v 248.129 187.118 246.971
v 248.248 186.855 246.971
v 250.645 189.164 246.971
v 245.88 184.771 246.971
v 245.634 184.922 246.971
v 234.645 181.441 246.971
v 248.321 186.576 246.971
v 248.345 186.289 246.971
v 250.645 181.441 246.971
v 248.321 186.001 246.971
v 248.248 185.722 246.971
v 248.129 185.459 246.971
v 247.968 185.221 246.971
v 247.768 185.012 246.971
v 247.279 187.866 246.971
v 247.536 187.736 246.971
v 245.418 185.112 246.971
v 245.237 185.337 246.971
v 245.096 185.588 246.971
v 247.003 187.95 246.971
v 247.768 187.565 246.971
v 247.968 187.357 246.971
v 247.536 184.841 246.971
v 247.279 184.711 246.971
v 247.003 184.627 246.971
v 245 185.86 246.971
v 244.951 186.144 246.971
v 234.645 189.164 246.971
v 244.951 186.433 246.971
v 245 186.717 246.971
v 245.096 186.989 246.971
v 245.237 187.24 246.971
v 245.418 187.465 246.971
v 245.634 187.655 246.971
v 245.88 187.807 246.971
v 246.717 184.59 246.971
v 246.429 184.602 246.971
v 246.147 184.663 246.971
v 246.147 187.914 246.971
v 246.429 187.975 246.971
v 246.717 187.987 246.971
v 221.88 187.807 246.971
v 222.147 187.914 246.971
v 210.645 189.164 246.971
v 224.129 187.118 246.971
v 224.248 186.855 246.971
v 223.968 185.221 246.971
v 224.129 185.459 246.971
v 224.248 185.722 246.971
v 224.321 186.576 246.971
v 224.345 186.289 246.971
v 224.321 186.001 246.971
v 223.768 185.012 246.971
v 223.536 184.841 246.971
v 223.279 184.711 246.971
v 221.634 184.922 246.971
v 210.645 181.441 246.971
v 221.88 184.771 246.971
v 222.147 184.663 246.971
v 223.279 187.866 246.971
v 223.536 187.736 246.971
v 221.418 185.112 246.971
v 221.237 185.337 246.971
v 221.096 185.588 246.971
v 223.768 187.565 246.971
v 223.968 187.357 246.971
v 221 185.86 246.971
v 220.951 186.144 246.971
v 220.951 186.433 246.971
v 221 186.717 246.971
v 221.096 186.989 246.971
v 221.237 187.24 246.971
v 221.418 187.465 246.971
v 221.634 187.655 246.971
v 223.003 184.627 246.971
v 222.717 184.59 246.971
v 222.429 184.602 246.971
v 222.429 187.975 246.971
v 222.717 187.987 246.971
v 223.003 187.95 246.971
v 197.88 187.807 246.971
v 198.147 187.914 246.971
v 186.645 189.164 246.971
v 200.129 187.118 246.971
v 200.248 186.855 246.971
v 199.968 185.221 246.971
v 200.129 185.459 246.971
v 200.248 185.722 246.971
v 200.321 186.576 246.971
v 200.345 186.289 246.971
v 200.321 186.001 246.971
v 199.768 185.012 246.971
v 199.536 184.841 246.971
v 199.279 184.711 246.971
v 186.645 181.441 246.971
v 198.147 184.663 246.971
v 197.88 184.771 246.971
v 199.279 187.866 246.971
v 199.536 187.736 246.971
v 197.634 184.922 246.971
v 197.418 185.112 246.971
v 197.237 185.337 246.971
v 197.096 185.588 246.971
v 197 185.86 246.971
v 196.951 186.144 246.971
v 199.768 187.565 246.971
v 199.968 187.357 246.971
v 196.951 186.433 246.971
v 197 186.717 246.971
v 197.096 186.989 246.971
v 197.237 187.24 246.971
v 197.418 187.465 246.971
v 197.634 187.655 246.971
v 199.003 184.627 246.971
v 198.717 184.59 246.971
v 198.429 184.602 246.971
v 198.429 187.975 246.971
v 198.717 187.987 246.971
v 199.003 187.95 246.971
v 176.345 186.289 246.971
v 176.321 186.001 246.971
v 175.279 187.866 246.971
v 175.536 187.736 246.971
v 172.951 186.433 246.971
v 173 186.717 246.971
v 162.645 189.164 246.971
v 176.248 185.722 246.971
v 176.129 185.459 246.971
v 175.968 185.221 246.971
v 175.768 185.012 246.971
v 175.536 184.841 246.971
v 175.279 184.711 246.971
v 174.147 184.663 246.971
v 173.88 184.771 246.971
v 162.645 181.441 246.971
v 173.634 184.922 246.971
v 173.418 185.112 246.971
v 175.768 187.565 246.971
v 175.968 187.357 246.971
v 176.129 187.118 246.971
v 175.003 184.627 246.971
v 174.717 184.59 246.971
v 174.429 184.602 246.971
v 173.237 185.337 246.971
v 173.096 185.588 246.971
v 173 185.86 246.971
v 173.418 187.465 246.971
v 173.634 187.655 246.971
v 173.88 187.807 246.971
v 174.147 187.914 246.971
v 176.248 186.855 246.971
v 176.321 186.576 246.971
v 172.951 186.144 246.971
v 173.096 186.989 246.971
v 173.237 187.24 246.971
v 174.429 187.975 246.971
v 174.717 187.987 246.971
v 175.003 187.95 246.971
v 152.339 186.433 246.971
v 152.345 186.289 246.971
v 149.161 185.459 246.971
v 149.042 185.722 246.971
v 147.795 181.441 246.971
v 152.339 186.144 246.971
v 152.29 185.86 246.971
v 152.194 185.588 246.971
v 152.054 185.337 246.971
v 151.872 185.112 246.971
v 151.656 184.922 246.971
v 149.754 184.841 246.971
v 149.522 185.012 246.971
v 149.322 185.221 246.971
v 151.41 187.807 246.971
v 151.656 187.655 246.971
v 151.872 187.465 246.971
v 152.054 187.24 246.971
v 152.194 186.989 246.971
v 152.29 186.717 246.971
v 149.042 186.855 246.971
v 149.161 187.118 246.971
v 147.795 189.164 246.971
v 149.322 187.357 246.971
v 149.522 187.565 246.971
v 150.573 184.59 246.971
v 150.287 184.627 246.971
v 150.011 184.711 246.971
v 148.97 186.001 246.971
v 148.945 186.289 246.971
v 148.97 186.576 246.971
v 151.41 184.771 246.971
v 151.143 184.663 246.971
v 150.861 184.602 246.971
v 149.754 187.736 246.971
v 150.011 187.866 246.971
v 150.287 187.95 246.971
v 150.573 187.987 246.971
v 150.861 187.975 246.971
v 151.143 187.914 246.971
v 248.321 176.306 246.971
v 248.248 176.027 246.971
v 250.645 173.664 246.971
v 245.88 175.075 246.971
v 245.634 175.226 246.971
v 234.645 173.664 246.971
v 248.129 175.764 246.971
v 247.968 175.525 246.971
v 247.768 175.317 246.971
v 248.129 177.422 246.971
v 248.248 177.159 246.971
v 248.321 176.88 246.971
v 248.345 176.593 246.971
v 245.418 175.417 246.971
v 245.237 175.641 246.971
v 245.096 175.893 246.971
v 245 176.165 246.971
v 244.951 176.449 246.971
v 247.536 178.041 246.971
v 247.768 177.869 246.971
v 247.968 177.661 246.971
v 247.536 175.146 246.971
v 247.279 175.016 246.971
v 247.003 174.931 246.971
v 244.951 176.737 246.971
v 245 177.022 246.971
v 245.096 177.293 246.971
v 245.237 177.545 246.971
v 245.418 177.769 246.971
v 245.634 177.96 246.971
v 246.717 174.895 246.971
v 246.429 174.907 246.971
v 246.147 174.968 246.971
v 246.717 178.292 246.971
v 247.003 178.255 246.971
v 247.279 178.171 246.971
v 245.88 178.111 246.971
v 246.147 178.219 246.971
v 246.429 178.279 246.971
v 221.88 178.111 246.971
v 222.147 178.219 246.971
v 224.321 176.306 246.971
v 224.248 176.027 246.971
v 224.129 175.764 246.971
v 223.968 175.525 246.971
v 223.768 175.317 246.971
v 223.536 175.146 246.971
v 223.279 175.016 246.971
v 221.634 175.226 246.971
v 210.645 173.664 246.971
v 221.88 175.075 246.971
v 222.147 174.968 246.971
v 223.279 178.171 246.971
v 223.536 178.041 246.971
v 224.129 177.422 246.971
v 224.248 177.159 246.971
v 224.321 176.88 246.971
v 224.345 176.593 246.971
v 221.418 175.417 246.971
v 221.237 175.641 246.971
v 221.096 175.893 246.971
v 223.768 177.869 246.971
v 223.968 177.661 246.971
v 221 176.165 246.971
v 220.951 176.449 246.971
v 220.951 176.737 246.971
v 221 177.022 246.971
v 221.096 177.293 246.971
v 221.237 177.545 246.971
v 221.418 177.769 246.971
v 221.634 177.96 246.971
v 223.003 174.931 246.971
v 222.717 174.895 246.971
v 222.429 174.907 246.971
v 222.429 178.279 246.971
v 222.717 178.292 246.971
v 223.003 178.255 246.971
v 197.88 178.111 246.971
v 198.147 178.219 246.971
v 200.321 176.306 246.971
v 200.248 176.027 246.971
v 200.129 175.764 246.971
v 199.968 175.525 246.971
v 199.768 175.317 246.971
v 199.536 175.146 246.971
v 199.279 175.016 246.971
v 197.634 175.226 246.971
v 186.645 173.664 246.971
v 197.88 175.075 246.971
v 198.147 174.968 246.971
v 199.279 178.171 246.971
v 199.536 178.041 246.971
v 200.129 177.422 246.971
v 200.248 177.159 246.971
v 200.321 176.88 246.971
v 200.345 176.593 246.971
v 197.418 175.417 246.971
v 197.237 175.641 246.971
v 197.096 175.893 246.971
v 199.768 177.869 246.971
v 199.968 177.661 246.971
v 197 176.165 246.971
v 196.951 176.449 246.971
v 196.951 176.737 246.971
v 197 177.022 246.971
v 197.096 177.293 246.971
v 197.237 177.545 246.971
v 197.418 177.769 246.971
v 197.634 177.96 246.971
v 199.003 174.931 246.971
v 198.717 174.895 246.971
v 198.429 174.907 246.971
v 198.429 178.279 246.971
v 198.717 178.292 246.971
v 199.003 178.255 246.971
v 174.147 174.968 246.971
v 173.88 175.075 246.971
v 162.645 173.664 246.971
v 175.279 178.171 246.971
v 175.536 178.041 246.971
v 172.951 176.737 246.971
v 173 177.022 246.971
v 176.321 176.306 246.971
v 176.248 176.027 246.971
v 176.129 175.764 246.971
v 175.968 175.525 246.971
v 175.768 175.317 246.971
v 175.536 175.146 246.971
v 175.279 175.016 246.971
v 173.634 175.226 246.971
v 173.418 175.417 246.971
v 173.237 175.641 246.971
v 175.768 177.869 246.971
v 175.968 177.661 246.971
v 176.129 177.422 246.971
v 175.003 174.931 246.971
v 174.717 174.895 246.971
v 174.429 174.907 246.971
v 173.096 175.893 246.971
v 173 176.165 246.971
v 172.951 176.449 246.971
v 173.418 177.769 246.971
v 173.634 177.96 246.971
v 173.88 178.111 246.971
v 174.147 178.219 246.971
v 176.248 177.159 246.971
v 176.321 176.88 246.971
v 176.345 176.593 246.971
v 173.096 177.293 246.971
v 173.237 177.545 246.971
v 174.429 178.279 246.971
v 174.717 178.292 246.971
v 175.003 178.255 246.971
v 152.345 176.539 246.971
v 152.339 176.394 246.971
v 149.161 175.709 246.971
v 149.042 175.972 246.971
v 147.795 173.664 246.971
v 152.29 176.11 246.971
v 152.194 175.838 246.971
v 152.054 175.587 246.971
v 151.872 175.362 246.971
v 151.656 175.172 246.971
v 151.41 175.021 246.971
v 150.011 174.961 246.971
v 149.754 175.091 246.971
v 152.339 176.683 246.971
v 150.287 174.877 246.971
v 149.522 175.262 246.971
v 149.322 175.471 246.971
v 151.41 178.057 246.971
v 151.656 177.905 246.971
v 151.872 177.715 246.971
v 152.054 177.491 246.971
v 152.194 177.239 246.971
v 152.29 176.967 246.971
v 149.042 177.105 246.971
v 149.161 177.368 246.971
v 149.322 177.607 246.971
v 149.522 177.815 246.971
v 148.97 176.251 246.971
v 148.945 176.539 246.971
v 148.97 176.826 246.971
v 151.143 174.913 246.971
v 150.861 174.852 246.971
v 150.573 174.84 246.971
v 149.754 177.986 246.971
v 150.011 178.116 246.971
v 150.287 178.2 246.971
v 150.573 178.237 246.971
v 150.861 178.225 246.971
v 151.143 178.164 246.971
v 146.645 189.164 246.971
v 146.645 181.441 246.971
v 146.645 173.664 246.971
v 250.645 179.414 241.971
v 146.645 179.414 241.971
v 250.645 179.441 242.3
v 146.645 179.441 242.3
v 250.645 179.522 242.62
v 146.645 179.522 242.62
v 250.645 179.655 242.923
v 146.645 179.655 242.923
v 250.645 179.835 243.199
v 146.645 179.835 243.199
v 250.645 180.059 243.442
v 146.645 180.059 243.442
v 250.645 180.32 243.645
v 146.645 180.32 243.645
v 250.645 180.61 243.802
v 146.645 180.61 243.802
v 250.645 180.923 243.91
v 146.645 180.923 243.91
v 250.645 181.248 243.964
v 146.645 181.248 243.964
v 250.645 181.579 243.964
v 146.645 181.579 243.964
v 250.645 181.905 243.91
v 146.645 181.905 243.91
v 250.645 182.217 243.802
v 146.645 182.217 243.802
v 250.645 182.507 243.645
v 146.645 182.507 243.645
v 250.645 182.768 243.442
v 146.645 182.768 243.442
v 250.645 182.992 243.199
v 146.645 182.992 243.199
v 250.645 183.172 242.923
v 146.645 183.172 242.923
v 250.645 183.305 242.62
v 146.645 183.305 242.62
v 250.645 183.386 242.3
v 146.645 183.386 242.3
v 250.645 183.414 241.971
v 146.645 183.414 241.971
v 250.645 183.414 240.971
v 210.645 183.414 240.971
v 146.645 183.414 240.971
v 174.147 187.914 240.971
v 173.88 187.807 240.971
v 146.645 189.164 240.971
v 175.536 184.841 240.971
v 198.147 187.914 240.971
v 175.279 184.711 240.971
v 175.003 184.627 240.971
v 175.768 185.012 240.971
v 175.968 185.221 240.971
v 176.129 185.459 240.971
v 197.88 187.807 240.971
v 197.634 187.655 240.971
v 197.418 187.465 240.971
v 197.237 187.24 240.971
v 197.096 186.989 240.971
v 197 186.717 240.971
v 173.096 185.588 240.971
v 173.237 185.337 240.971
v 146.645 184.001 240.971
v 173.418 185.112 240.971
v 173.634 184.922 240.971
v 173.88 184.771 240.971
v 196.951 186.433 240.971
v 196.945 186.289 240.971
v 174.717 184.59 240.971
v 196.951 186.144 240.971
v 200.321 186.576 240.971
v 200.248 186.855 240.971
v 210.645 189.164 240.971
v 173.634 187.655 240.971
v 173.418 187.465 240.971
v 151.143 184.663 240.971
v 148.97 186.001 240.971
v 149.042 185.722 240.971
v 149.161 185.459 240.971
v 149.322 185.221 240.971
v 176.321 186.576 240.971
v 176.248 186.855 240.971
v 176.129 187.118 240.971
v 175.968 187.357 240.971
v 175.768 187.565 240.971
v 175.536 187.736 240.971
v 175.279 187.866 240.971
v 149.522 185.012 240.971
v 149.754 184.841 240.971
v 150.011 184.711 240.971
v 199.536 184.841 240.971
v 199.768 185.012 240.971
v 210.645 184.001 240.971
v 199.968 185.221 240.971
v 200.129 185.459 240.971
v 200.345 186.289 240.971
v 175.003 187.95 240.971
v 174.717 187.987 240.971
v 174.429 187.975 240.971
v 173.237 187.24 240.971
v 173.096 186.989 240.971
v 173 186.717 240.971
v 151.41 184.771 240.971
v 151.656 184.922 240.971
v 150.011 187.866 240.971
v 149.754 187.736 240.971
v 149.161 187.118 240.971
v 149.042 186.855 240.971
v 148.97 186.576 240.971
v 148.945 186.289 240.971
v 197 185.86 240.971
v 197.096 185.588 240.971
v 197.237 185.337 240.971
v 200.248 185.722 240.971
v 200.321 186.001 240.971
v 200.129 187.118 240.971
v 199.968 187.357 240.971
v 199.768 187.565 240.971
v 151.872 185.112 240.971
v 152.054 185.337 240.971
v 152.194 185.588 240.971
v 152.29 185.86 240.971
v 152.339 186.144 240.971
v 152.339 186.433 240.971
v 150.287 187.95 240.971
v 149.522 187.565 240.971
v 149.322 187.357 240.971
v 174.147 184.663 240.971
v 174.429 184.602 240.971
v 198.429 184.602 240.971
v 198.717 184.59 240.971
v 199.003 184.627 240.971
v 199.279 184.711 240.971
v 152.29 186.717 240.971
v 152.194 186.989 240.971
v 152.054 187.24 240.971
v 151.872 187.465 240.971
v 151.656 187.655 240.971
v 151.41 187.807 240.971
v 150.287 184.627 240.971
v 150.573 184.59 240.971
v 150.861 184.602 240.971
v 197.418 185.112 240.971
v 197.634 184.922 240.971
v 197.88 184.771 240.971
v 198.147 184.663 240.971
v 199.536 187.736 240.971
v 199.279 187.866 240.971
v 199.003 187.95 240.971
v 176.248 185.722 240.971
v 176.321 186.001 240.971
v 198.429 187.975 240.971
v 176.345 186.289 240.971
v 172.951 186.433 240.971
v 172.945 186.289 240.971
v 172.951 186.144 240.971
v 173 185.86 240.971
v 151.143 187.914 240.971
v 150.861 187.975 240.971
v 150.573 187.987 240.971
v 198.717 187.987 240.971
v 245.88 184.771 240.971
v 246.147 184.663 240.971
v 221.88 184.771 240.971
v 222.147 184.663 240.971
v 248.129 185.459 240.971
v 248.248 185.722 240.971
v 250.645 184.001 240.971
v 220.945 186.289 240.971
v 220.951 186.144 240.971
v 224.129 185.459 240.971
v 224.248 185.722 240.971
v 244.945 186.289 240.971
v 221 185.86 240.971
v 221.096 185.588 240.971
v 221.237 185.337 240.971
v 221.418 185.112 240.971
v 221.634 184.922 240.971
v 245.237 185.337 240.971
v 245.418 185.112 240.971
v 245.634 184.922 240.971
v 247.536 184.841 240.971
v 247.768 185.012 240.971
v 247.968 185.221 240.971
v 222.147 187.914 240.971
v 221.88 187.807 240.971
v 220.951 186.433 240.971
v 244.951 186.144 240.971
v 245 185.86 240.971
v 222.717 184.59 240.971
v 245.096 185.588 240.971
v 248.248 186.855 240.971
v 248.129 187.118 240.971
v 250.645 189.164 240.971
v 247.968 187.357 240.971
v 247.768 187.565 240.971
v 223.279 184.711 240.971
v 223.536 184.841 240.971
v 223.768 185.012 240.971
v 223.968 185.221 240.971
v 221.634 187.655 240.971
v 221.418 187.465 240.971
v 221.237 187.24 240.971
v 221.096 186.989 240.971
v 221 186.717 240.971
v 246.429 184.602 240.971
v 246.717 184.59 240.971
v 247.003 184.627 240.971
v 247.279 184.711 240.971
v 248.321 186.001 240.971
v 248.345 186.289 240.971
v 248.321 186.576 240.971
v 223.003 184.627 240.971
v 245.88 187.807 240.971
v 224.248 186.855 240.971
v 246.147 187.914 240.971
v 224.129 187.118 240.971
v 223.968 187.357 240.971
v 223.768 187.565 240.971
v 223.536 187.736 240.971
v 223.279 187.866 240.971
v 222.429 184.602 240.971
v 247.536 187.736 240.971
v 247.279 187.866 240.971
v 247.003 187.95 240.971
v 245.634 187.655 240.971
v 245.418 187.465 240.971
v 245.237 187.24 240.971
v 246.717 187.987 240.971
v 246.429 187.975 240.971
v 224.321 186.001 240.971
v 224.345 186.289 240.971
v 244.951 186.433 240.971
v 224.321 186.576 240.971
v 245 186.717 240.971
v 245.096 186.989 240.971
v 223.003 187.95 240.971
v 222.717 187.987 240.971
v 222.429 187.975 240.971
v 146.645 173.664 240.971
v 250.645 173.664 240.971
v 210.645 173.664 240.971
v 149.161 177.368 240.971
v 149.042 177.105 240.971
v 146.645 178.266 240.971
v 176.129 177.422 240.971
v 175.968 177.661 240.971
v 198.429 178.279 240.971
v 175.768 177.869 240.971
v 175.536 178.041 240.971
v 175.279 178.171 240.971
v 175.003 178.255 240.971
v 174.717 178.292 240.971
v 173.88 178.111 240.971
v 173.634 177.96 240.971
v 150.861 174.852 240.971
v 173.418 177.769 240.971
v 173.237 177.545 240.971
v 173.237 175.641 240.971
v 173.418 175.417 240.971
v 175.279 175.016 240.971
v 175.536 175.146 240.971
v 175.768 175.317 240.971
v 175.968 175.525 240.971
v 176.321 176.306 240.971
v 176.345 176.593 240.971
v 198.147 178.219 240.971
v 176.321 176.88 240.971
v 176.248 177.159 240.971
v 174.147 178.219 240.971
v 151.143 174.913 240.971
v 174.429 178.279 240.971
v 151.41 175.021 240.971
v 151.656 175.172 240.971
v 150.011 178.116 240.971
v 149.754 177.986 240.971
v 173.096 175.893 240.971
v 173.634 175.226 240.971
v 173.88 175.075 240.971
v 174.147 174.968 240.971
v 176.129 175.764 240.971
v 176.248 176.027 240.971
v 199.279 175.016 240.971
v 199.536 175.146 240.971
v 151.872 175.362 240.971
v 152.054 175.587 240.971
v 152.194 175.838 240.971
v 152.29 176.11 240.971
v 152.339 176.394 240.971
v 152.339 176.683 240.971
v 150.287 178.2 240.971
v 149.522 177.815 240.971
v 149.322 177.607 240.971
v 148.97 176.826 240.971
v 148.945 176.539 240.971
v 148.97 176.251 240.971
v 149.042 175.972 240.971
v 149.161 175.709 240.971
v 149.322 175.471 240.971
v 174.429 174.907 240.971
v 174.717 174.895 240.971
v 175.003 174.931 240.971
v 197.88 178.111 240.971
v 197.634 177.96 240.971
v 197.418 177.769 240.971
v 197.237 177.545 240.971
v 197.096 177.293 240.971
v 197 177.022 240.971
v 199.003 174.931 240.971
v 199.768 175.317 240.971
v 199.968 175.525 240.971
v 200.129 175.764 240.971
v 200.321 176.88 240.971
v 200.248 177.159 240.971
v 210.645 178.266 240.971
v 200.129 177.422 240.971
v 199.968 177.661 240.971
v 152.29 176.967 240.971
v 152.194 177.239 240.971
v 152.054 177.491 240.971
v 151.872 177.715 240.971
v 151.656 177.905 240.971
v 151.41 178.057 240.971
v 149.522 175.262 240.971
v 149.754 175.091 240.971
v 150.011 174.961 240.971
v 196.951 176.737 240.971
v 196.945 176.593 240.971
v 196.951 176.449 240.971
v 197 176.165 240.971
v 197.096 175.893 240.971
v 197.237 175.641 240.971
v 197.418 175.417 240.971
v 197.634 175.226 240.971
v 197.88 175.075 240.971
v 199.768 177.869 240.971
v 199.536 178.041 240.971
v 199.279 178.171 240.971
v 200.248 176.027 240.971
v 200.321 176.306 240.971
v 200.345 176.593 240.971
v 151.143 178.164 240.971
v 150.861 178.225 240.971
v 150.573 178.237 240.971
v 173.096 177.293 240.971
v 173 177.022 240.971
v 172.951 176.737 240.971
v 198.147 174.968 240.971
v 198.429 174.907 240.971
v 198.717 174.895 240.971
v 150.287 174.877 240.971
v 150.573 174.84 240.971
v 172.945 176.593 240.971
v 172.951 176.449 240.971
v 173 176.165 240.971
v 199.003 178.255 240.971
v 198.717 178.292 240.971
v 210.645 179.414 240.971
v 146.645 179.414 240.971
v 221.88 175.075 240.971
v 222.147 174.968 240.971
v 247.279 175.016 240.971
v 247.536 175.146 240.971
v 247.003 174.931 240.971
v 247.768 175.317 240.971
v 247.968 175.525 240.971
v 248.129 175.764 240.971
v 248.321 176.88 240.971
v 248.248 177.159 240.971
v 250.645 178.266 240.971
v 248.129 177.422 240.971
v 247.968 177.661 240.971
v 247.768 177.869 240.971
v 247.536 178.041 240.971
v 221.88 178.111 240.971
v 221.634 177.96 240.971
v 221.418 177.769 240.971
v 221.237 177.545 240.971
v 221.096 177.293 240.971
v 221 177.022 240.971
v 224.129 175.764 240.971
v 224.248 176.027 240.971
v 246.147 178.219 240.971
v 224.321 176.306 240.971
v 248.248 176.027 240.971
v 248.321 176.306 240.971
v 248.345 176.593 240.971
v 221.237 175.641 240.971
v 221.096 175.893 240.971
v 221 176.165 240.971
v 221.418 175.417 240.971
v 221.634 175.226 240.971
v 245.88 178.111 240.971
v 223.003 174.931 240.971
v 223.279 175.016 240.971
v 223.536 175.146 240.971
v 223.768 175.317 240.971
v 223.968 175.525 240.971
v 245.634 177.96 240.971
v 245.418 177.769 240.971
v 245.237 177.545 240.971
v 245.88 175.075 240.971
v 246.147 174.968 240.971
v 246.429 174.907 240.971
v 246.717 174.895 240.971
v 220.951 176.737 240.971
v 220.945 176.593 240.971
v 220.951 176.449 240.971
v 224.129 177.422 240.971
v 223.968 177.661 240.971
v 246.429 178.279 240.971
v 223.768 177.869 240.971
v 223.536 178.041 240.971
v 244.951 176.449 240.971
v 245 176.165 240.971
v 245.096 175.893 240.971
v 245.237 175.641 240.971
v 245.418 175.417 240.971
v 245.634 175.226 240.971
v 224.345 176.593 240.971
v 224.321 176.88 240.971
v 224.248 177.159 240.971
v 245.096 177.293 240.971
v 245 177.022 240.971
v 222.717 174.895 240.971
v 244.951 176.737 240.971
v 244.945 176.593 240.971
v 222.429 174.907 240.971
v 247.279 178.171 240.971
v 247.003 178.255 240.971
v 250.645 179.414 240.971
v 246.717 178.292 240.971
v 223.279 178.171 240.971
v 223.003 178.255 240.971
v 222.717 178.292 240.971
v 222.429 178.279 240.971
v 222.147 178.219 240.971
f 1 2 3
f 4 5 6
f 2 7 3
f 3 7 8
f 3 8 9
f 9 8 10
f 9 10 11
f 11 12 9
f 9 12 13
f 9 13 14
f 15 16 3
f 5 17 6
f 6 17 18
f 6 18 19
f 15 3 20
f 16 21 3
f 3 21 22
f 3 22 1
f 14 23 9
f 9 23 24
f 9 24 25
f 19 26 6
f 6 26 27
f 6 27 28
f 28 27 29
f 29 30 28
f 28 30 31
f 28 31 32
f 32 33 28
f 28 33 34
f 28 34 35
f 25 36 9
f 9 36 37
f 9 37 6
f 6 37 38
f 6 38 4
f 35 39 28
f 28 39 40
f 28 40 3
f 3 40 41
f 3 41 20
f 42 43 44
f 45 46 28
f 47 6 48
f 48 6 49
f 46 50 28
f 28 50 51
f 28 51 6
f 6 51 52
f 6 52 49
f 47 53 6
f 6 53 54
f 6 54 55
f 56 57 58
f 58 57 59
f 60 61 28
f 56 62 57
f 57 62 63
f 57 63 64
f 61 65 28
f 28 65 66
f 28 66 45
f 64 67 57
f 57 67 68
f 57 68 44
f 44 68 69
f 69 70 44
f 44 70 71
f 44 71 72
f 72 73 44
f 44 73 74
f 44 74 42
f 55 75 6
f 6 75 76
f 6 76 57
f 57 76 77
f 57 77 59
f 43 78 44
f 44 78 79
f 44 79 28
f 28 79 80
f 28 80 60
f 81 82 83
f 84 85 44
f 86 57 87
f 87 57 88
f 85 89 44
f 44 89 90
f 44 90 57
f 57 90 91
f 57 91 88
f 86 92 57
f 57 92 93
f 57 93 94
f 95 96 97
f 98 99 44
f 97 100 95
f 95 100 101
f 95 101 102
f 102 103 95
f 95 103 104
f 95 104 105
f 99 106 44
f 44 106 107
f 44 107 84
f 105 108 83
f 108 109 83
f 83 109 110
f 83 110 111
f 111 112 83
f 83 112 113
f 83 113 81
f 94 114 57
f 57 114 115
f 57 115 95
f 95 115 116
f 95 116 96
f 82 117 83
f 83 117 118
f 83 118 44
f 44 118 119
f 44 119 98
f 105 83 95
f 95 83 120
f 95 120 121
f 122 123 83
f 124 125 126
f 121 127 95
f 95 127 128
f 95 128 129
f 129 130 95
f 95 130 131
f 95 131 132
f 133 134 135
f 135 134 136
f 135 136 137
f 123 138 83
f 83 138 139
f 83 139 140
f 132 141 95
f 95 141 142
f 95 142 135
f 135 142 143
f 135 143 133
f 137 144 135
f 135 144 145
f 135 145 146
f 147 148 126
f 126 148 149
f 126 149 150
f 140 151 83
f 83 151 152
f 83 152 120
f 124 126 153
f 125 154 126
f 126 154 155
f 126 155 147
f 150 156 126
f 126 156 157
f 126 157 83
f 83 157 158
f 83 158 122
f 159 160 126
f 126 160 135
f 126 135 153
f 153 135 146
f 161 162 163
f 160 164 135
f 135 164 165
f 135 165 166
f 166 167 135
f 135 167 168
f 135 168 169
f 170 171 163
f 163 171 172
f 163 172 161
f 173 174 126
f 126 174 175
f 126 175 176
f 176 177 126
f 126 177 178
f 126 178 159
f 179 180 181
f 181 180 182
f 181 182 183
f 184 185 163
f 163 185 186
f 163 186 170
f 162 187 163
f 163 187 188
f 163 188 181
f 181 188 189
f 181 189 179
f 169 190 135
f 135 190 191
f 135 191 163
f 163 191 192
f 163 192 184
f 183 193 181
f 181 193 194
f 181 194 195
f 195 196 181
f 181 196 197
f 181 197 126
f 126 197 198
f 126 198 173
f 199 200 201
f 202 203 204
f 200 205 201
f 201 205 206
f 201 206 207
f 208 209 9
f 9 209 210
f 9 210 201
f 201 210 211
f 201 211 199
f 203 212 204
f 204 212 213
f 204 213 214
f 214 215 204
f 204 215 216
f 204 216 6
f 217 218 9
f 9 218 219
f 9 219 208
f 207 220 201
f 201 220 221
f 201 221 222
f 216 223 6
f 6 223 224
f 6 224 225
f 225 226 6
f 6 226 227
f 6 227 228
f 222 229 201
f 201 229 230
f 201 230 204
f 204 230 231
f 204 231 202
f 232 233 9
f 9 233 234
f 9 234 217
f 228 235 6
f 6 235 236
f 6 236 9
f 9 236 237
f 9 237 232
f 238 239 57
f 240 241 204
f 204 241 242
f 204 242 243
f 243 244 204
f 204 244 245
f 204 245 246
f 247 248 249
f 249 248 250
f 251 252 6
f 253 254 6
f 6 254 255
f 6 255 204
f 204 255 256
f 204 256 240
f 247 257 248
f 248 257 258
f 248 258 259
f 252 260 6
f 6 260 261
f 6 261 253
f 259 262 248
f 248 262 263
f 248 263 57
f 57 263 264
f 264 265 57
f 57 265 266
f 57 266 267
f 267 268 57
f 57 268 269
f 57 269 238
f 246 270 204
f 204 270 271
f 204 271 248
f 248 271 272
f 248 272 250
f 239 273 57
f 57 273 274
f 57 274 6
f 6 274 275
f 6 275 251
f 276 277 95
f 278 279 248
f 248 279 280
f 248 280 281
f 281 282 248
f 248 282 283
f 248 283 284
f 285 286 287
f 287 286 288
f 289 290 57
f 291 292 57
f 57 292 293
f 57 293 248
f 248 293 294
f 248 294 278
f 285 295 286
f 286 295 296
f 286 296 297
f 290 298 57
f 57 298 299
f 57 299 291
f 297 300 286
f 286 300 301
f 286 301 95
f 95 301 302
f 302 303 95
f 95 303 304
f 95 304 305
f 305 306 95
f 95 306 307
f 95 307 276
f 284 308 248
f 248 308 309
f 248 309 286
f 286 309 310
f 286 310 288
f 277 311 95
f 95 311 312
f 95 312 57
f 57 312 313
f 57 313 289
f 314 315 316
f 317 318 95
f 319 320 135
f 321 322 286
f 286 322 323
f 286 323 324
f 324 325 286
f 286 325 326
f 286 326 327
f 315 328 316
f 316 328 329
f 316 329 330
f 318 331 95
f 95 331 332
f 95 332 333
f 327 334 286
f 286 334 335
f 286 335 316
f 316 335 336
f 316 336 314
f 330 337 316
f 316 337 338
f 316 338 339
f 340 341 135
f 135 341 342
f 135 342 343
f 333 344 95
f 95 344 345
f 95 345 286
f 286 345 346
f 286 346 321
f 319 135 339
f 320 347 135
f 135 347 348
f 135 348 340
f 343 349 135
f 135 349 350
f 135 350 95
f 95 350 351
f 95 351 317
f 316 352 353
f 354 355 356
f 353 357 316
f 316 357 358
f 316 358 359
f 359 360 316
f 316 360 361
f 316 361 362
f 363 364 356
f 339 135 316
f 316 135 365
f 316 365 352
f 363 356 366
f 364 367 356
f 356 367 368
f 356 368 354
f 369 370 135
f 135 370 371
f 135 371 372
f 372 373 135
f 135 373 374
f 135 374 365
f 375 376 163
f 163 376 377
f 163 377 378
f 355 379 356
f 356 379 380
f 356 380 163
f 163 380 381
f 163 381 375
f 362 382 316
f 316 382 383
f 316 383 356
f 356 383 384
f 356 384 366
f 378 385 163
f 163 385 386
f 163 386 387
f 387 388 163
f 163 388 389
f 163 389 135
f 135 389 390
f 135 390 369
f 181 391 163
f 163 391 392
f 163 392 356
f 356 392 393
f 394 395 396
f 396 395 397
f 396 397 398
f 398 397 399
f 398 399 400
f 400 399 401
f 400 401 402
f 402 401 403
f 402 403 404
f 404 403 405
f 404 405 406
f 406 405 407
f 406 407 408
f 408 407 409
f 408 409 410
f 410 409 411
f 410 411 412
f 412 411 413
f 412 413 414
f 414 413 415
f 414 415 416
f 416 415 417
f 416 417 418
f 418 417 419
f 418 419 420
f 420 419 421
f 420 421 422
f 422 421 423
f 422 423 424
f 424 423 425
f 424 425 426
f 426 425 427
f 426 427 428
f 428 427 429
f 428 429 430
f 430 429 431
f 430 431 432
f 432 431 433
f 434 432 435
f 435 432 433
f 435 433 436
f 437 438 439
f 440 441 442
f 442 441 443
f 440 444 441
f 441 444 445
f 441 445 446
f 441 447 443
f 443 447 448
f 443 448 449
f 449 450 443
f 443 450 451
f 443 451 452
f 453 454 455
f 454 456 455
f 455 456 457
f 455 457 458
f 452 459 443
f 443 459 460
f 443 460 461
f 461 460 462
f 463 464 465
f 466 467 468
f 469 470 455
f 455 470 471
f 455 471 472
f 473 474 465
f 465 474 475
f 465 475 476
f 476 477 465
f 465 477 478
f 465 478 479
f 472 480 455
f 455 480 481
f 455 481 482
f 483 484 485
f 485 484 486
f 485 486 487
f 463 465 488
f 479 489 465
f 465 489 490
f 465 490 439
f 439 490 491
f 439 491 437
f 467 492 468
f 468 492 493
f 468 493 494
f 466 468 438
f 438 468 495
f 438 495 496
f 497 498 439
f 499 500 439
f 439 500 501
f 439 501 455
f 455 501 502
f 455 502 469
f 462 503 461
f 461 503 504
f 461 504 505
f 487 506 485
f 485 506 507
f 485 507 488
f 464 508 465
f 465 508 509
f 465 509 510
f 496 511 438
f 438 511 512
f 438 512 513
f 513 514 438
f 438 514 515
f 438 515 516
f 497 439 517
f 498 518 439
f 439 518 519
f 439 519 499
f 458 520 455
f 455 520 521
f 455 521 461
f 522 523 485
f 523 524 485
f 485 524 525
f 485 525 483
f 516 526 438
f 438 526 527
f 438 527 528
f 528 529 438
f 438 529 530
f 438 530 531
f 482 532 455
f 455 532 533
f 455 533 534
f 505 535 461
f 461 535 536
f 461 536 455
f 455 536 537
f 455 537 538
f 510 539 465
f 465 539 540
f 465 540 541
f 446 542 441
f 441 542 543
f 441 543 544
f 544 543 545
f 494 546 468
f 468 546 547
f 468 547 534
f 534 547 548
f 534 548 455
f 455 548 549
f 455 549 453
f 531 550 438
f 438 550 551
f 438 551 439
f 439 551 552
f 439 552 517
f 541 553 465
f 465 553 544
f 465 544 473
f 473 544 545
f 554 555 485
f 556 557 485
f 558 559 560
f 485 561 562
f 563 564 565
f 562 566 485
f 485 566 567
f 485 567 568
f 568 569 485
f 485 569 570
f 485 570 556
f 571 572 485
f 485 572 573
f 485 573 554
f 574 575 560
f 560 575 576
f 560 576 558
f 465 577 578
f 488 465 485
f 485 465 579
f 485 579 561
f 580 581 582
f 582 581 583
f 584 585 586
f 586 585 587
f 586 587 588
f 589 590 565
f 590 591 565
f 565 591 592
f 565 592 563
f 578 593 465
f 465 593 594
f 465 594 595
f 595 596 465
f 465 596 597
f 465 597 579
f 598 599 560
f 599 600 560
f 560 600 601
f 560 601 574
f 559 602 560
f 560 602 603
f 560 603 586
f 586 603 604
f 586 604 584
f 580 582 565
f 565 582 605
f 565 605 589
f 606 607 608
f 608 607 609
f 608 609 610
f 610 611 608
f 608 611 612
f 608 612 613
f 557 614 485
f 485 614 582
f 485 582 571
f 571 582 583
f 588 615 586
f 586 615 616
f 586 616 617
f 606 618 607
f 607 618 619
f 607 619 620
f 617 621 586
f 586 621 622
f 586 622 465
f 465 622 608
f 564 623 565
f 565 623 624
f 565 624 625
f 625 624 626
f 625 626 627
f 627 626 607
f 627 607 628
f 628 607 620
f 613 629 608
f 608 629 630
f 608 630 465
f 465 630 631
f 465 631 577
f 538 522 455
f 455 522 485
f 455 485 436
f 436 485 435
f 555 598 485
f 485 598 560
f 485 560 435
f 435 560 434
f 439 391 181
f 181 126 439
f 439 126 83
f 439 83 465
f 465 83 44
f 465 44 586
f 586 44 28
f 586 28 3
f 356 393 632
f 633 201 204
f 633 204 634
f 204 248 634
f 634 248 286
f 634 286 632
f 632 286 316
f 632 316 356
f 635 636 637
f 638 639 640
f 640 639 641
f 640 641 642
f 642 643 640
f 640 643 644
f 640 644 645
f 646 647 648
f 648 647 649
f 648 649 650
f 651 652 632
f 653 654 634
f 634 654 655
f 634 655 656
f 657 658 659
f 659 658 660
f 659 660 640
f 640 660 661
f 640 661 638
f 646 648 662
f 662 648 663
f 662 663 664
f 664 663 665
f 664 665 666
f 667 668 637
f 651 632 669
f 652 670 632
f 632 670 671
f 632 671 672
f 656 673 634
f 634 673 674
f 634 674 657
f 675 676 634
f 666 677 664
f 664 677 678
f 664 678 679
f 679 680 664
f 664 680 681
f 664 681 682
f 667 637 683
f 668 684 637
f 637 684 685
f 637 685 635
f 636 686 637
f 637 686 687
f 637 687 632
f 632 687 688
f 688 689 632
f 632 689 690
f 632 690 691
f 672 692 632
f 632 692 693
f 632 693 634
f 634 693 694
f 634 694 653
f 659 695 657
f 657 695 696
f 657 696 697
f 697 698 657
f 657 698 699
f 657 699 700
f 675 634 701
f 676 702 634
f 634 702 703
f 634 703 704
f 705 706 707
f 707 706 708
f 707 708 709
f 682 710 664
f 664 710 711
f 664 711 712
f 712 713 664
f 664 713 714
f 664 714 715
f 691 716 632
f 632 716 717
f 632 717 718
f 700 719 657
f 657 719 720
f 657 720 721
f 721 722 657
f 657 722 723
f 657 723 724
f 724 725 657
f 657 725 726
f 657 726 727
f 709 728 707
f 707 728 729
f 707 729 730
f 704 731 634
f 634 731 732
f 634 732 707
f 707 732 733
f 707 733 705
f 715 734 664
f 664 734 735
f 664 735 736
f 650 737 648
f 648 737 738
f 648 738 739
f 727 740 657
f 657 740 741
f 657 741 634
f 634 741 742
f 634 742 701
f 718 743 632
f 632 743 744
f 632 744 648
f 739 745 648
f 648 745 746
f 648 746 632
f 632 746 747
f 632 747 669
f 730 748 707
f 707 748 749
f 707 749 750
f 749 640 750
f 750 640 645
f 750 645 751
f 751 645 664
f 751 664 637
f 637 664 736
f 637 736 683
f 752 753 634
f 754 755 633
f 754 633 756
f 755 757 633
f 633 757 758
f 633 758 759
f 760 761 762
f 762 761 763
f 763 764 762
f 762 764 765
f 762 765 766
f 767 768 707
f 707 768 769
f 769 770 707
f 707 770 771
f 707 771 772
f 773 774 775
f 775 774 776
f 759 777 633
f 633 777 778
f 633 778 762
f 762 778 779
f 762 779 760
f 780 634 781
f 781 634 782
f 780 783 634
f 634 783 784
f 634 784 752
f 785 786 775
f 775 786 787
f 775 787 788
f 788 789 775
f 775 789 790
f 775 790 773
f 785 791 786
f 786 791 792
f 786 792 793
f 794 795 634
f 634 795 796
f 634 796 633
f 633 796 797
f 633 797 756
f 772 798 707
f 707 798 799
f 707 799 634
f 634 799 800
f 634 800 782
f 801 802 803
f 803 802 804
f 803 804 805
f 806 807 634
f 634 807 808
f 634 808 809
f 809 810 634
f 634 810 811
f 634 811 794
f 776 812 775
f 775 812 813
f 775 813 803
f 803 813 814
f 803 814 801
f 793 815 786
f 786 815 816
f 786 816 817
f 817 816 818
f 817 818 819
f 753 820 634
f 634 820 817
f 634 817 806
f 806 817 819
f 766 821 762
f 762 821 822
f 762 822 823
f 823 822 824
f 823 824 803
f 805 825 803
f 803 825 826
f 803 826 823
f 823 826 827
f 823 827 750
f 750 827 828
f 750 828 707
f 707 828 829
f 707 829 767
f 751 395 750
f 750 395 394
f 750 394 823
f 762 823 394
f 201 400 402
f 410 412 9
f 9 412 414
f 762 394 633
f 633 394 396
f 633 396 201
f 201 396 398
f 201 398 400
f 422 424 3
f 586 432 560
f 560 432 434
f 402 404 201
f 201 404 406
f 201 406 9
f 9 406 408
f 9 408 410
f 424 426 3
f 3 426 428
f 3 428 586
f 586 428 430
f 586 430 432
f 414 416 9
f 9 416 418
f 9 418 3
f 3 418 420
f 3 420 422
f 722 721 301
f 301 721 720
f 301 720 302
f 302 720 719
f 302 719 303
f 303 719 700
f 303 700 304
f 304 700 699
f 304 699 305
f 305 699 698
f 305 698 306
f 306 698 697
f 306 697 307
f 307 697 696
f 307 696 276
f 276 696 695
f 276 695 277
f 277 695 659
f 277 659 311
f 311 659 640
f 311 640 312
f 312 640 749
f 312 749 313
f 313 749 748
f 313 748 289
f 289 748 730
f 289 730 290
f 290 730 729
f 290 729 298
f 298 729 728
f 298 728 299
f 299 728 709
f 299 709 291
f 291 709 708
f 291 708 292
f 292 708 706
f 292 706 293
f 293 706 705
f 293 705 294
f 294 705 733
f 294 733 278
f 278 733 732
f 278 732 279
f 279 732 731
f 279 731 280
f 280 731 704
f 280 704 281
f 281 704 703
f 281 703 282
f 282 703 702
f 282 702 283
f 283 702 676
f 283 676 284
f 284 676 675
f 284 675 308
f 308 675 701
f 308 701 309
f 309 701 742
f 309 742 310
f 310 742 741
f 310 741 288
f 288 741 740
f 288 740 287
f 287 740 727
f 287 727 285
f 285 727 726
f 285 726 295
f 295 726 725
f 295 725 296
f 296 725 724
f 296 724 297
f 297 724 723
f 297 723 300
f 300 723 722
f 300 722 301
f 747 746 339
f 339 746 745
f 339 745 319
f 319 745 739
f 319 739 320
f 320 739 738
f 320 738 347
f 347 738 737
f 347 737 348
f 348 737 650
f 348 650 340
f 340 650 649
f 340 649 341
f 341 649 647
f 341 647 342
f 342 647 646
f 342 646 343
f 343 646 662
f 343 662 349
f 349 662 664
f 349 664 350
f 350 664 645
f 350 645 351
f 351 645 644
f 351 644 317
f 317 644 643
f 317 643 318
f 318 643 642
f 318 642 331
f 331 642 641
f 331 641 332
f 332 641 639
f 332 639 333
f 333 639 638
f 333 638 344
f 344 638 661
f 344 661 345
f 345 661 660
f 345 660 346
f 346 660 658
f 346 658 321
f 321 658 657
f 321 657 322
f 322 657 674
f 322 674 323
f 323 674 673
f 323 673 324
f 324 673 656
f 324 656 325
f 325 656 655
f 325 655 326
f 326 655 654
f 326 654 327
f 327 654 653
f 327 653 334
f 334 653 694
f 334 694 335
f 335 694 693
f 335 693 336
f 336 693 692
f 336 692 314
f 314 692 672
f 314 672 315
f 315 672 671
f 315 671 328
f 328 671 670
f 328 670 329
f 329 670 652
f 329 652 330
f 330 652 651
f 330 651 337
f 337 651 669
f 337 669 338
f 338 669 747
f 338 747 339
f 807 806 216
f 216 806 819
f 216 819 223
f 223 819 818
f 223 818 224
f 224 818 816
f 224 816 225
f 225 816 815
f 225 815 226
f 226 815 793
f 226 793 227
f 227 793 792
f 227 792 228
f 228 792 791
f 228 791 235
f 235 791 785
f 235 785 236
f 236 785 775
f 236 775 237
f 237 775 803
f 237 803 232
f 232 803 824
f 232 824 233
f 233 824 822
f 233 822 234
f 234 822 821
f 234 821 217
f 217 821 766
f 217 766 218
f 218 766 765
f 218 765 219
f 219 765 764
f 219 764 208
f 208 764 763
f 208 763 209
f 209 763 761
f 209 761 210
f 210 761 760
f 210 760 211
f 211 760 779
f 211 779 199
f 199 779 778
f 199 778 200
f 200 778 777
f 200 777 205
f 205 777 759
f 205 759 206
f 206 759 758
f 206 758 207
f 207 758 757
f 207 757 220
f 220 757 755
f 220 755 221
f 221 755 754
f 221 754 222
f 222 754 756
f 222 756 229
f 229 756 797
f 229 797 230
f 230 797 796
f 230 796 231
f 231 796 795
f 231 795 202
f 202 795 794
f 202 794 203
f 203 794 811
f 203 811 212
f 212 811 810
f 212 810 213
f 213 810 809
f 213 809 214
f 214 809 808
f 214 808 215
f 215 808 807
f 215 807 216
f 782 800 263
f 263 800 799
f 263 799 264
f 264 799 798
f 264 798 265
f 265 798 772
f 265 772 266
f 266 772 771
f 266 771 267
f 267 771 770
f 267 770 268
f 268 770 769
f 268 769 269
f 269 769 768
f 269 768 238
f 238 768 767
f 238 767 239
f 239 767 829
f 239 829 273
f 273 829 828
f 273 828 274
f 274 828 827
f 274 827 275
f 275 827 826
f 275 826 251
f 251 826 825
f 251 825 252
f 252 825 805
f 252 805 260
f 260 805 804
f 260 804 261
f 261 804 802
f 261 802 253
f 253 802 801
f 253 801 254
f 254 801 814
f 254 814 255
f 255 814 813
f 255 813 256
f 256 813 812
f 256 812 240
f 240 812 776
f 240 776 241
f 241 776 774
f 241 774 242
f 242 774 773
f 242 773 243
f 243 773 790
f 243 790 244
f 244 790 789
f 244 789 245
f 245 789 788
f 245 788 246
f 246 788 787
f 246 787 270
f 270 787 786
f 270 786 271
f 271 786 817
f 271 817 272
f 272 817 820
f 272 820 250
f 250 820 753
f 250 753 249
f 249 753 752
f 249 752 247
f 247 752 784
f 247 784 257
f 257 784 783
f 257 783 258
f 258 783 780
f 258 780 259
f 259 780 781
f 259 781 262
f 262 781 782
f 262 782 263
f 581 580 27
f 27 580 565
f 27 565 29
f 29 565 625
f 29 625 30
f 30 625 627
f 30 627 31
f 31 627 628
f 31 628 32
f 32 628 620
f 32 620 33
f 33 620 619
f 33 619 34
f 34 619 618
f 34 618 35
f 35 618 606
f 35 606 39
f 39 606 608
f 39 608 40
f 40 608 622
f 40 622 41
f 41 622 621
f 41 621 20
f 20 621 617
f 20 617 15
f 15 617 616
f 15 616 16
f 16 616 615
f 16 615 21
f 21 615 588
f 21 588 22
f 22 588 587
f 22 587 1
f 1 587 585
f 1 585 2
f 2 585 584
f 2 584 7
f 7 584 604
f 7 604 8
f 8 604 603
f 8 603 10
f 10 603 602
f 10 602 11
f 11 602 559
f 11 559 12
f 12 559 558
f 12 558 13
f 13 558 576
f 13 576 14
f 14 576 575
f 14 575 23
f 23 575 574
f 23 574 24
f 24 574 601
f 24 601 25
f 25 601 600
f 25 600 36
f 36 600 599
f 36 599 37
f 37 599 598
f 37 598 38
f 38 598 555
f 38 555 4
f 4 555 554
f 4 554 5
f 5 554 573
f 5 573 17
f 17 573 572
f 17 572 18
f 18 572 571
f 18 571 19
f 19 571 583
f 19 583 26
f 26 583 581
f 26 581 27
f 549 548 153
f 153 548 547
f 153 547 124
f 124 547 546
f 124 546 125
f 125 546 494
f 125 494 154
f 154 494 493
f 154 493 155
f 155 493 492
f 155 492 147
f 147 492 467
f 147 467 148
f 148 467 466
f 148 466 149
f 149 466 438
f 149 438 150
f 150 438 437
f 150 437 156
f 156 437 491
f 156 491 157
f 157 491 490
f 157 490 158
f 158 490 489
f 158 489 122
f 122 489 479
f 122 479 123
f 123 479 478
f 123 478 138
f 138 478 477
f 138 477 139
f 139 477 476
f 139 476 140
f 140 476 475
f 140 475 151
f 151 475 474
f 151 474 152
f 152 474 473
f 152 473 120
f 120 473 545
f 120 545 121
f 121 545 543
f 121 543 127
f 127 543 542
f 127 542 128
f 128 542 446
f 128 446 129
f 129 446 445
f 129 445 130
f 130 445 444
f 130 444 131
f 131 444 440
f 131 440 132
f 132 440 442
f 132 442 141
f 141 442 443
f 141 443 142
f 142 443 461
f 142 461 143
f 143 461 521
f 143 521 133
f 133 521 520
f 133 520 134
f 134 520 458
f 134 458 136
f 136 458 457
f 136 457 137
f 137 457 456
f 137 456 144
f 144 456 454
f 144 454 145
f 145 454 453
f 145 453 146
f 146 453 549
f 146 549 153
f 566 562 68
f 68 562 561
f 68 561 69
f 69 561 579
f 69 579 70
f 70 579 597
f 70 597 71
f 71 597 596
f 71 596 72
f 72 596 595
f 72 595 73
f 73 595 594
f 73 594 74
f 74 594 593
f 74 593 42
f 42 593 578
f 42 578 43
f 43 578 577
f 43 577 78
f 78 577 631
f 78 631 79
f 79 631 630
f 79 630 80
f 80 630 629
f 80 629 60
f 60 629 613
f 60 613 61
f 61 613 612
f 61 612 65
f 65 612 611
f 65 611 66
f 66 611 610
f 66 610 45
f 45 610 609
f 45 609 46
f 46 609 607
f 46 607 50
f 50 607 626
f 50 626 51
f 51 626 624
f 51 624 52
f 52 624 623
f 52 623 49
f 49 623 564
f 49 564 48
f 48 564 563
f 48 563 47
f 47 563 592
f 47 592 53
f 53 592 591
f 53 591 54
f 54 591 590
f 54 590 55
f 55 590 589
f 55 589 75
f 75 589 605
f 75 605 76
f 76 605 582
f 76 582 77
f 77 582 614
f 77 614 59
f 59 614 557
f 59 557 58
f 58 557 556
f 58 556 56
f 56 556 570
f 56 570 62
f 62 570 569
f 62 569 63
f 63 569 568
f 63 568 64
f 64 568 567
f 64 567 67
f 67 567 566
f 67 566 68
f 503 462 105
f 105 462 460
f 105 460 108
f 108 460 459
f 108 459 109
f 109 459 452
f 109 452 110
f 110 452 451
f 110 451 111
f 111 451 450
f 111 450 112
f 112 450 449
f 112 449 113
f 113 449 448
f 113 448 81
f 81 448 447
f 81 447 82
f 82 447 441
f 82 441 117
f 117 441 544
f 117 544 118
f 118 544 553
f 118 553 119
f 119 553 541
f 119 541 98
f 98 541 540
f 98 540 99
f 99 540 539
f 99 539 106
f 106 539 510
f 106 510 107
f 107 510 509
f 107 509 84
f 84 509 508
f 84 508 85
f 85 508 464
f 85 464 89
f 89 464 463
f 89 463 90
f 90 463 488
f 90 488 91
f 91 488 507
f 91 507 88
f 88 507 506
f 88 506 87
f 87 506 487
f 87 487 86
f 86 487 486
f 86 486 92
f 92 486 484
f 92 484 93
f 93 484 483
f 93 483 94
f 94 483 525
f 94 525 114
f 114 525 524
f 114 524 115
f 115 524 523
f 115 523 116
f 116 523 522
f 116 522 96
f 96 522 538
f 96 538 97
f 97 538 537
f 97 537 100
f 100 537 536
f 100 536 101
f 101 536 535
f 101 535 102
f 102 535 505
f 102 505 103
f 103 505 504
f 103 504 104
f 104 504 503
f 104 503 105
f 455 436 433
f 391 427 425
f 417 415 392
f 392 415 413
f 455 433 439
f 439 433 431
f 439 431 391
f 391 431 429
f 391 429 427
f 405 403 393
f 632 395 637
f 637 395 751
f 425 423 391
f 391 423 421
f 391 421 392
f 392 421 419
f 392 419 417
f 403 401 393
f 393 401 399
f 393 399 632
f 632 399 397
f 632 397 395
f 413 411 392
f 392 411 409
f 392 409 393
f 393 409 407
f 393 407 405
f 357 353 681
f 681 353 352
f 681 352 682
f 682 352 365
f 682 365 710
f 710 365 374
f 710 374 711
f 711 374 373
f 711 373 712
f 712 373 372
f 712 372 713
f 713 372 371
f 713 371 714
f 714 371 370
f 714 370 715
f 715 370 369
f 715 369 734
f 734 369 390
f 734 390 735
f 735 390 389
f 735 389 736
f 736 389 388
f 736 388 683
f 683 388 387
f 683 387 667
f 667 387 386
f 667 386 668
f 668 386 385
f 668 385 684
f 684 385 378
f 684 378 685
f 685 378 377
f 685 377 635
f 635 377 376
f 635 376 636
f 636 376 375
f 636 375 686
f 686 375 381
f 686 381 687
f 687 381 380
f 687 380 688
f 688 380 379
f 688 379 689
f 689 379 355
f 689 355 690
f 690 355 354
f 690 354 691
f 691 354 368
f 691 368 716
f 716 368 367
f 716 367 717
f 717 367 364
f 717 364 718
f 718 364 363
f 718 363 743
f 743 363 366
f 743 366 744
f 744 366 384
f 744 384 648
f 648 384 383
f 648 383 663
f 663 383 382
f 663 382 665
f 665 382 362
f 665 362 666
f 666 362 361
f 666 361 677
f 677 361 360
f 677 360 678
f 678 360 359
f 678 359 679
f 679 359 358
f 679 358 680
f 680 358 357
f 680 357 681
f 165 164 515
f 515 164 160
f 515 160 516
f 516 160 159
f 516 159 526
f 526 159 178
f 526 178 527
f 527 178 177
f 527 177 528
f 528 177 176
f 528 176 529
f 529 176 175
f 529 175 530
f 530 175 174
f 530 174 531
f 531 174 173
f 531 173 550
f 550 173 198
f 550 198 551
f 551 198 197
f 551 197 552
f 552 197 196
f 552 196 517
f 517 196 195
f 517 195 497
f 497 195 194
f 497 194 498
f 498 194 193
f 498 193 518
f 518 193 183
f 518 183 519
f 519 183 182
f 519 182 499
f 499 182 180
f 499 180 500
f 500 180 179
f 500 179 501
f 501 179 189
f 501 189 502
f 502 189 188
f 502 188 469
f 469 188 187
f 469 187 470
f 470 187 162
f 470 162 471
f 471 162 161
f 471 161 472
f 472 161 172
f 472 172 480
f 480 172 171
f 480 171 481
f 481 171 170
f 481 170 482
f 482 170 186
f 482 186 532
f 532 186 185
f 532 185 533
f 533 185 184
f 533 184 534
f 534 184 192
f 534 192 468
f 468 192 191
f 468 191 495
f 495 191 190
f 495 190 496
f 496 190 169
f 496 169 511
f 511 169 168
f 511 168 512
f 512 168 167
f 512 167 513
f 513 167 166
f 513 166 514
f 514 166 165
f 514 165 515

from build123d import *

# Parameters (mm, degrees)
BOSS_EXTRUDE1_DEPTH      = 60
BOSS_EXTRUDE1_DEPTH_BACK = 20
SKETCH2_R                = 1.7
CUT_EXTRUDE1_DEPTH       = 10
BOSS_EXTRUDE2_START      = 24
BOSS_EXTRUDE2_DEPTH      = 24
CUT_EXTRUDE2_START       = -10
SKETCH4_R                = 1.7
CUT_EXTRUDE2_DEPTH       = 10


with BuildPart() as part:
    # Sketch1 → Boss-Extrude1 (new, two sides: drawn at the far end of the back side and taken through both)
    with BuildSketch(Plane(origin=(190.645148, 0, 0), x_dir=(0, 0, -1), z_dir=(1, 0, 0)).offset(-BOSS_EXTRUDE1_DEPTH_BACK)):
        with BuildLine():
            Line((-240.970904961, 189.163538159), (-246.970904961, 189.163538159))
            Line((-246.970904961, 189.163538159), (-246.970904961, 173.663538158))
            Line((-246.970904961, 173.663538158), (-240.970904961, 173.663538158))
            Line((-240.970904961, 173.663538158), (-240.970904961, 179.413538158))
            Line((-240.970904961, 179.413538158), (-241.970904961, 179.413538158))
            ThreePointArc((-241.970904961, 179.413538158), (-243.970904961, 181.413538158), (-241.970904961, 183.413538158))
            Line((-241.970904961, 183.413538158), (-240.970904961, 183.413538158))
            Line((-240.970904961, 183.413538158), (-240.970904961, 189.163538159))
        make_face()
    extrude(amount=BOSS_EXTRUDE1_DEPTH + BOSS_EXTRUDE1_DEPTH_BACK)

    # Sketch2 → Cut-Extrude1 (cut)
    with BuildSketch(Plane.XY.offset(246.970904961)):
        with Locations((246.645148, 186.288538158)):
            Circle(SKETCH2_R)
        with Locations((222.645148, 186.288538158)):
            Circle(SKETCH2_R)
        with Locations((198.645148, 186.288538158)):
            Circle(SKETCH2_R)
        with Locations((174.645148, 186.288538158)):
            Circle(SKETCH2_R)
        with Locations((246.645148, 176.593153442)):
            Circle(SKETCH2_R)
        with Locations((222.645148, 176.593153442)):
            Circle(SKETCH2_R)
        with Locations((198.645148, 176.593153442)):
            Circle(SKETCH2_R)
        with Locations((174.645148, 176.593153442)):
            Circle(SKETCH2_R)
    extrude(amount=-CUT_EXTRUDE1_DEPTH, mode=Mode.SUBTRACT)

    # Sketch3 → Boss-Extrude2 (add)
    with BuildSketch(Plane.ZY.offset(-170.645148).offset(BOSS_EXTRUDE2_START)):
        with BuildLine():
            Line((241.970904961, 179.413538158), (240.970904961, 179.413538158))
            Line((240.970904961, 179.413538158), (240.970904961, 173.663538158))
            Line((240.970904961, 173.663538158), (246.970904961, 173.663538158))
            Line((246.970904961, 173.663538158), (246.970904961, 189.163538159))
            Line((246.970904961, 189.163538159), (240.970904961, 189.163538159))
            Line((240.970904961, 189.163538159), (240.970904961, 183.413538158))
            Line((240.970904961, 183.413538158), (241.970904961, 183.413538158))
            ThreePointArc((241.970904961, 183.413538158), (243.970904961, 181.413538158), (241.970904961, 179.413538158))
        make_face()
    extrude(amount=-BOSS_EXTRUDE2_DEPTH)

    # Sketch4 → Cut-Extrude2 (cut)
    with BuildSketch(Plane(origin=(0, 0, 240.970904961), x_dir=(-1, 0, 0), z_dir=(0, 0, -1)).offset(CUT_EXTRUDE2_START)):
        with Locations(Location((-174.645148, 176.593153442, 0), (0, 0, 180))):
            Circle(SKETCH4_R)
        with Locations(Location((-174.645148, 186.288538158, 0), (0, 0, 180))):
            Circle(SKETCH4_R)
        with Locations((-150.645148, 186.288538158)):
            Circle(SKETCH4_R)
        with Locations((-150.645148, 176.538538158)):
            Circle(SKETCH4_R)
    extrude(amount=CUT_EXTRUDE2_DEPTH, mode=Mode.SUBTRACT)


solid = part.part
